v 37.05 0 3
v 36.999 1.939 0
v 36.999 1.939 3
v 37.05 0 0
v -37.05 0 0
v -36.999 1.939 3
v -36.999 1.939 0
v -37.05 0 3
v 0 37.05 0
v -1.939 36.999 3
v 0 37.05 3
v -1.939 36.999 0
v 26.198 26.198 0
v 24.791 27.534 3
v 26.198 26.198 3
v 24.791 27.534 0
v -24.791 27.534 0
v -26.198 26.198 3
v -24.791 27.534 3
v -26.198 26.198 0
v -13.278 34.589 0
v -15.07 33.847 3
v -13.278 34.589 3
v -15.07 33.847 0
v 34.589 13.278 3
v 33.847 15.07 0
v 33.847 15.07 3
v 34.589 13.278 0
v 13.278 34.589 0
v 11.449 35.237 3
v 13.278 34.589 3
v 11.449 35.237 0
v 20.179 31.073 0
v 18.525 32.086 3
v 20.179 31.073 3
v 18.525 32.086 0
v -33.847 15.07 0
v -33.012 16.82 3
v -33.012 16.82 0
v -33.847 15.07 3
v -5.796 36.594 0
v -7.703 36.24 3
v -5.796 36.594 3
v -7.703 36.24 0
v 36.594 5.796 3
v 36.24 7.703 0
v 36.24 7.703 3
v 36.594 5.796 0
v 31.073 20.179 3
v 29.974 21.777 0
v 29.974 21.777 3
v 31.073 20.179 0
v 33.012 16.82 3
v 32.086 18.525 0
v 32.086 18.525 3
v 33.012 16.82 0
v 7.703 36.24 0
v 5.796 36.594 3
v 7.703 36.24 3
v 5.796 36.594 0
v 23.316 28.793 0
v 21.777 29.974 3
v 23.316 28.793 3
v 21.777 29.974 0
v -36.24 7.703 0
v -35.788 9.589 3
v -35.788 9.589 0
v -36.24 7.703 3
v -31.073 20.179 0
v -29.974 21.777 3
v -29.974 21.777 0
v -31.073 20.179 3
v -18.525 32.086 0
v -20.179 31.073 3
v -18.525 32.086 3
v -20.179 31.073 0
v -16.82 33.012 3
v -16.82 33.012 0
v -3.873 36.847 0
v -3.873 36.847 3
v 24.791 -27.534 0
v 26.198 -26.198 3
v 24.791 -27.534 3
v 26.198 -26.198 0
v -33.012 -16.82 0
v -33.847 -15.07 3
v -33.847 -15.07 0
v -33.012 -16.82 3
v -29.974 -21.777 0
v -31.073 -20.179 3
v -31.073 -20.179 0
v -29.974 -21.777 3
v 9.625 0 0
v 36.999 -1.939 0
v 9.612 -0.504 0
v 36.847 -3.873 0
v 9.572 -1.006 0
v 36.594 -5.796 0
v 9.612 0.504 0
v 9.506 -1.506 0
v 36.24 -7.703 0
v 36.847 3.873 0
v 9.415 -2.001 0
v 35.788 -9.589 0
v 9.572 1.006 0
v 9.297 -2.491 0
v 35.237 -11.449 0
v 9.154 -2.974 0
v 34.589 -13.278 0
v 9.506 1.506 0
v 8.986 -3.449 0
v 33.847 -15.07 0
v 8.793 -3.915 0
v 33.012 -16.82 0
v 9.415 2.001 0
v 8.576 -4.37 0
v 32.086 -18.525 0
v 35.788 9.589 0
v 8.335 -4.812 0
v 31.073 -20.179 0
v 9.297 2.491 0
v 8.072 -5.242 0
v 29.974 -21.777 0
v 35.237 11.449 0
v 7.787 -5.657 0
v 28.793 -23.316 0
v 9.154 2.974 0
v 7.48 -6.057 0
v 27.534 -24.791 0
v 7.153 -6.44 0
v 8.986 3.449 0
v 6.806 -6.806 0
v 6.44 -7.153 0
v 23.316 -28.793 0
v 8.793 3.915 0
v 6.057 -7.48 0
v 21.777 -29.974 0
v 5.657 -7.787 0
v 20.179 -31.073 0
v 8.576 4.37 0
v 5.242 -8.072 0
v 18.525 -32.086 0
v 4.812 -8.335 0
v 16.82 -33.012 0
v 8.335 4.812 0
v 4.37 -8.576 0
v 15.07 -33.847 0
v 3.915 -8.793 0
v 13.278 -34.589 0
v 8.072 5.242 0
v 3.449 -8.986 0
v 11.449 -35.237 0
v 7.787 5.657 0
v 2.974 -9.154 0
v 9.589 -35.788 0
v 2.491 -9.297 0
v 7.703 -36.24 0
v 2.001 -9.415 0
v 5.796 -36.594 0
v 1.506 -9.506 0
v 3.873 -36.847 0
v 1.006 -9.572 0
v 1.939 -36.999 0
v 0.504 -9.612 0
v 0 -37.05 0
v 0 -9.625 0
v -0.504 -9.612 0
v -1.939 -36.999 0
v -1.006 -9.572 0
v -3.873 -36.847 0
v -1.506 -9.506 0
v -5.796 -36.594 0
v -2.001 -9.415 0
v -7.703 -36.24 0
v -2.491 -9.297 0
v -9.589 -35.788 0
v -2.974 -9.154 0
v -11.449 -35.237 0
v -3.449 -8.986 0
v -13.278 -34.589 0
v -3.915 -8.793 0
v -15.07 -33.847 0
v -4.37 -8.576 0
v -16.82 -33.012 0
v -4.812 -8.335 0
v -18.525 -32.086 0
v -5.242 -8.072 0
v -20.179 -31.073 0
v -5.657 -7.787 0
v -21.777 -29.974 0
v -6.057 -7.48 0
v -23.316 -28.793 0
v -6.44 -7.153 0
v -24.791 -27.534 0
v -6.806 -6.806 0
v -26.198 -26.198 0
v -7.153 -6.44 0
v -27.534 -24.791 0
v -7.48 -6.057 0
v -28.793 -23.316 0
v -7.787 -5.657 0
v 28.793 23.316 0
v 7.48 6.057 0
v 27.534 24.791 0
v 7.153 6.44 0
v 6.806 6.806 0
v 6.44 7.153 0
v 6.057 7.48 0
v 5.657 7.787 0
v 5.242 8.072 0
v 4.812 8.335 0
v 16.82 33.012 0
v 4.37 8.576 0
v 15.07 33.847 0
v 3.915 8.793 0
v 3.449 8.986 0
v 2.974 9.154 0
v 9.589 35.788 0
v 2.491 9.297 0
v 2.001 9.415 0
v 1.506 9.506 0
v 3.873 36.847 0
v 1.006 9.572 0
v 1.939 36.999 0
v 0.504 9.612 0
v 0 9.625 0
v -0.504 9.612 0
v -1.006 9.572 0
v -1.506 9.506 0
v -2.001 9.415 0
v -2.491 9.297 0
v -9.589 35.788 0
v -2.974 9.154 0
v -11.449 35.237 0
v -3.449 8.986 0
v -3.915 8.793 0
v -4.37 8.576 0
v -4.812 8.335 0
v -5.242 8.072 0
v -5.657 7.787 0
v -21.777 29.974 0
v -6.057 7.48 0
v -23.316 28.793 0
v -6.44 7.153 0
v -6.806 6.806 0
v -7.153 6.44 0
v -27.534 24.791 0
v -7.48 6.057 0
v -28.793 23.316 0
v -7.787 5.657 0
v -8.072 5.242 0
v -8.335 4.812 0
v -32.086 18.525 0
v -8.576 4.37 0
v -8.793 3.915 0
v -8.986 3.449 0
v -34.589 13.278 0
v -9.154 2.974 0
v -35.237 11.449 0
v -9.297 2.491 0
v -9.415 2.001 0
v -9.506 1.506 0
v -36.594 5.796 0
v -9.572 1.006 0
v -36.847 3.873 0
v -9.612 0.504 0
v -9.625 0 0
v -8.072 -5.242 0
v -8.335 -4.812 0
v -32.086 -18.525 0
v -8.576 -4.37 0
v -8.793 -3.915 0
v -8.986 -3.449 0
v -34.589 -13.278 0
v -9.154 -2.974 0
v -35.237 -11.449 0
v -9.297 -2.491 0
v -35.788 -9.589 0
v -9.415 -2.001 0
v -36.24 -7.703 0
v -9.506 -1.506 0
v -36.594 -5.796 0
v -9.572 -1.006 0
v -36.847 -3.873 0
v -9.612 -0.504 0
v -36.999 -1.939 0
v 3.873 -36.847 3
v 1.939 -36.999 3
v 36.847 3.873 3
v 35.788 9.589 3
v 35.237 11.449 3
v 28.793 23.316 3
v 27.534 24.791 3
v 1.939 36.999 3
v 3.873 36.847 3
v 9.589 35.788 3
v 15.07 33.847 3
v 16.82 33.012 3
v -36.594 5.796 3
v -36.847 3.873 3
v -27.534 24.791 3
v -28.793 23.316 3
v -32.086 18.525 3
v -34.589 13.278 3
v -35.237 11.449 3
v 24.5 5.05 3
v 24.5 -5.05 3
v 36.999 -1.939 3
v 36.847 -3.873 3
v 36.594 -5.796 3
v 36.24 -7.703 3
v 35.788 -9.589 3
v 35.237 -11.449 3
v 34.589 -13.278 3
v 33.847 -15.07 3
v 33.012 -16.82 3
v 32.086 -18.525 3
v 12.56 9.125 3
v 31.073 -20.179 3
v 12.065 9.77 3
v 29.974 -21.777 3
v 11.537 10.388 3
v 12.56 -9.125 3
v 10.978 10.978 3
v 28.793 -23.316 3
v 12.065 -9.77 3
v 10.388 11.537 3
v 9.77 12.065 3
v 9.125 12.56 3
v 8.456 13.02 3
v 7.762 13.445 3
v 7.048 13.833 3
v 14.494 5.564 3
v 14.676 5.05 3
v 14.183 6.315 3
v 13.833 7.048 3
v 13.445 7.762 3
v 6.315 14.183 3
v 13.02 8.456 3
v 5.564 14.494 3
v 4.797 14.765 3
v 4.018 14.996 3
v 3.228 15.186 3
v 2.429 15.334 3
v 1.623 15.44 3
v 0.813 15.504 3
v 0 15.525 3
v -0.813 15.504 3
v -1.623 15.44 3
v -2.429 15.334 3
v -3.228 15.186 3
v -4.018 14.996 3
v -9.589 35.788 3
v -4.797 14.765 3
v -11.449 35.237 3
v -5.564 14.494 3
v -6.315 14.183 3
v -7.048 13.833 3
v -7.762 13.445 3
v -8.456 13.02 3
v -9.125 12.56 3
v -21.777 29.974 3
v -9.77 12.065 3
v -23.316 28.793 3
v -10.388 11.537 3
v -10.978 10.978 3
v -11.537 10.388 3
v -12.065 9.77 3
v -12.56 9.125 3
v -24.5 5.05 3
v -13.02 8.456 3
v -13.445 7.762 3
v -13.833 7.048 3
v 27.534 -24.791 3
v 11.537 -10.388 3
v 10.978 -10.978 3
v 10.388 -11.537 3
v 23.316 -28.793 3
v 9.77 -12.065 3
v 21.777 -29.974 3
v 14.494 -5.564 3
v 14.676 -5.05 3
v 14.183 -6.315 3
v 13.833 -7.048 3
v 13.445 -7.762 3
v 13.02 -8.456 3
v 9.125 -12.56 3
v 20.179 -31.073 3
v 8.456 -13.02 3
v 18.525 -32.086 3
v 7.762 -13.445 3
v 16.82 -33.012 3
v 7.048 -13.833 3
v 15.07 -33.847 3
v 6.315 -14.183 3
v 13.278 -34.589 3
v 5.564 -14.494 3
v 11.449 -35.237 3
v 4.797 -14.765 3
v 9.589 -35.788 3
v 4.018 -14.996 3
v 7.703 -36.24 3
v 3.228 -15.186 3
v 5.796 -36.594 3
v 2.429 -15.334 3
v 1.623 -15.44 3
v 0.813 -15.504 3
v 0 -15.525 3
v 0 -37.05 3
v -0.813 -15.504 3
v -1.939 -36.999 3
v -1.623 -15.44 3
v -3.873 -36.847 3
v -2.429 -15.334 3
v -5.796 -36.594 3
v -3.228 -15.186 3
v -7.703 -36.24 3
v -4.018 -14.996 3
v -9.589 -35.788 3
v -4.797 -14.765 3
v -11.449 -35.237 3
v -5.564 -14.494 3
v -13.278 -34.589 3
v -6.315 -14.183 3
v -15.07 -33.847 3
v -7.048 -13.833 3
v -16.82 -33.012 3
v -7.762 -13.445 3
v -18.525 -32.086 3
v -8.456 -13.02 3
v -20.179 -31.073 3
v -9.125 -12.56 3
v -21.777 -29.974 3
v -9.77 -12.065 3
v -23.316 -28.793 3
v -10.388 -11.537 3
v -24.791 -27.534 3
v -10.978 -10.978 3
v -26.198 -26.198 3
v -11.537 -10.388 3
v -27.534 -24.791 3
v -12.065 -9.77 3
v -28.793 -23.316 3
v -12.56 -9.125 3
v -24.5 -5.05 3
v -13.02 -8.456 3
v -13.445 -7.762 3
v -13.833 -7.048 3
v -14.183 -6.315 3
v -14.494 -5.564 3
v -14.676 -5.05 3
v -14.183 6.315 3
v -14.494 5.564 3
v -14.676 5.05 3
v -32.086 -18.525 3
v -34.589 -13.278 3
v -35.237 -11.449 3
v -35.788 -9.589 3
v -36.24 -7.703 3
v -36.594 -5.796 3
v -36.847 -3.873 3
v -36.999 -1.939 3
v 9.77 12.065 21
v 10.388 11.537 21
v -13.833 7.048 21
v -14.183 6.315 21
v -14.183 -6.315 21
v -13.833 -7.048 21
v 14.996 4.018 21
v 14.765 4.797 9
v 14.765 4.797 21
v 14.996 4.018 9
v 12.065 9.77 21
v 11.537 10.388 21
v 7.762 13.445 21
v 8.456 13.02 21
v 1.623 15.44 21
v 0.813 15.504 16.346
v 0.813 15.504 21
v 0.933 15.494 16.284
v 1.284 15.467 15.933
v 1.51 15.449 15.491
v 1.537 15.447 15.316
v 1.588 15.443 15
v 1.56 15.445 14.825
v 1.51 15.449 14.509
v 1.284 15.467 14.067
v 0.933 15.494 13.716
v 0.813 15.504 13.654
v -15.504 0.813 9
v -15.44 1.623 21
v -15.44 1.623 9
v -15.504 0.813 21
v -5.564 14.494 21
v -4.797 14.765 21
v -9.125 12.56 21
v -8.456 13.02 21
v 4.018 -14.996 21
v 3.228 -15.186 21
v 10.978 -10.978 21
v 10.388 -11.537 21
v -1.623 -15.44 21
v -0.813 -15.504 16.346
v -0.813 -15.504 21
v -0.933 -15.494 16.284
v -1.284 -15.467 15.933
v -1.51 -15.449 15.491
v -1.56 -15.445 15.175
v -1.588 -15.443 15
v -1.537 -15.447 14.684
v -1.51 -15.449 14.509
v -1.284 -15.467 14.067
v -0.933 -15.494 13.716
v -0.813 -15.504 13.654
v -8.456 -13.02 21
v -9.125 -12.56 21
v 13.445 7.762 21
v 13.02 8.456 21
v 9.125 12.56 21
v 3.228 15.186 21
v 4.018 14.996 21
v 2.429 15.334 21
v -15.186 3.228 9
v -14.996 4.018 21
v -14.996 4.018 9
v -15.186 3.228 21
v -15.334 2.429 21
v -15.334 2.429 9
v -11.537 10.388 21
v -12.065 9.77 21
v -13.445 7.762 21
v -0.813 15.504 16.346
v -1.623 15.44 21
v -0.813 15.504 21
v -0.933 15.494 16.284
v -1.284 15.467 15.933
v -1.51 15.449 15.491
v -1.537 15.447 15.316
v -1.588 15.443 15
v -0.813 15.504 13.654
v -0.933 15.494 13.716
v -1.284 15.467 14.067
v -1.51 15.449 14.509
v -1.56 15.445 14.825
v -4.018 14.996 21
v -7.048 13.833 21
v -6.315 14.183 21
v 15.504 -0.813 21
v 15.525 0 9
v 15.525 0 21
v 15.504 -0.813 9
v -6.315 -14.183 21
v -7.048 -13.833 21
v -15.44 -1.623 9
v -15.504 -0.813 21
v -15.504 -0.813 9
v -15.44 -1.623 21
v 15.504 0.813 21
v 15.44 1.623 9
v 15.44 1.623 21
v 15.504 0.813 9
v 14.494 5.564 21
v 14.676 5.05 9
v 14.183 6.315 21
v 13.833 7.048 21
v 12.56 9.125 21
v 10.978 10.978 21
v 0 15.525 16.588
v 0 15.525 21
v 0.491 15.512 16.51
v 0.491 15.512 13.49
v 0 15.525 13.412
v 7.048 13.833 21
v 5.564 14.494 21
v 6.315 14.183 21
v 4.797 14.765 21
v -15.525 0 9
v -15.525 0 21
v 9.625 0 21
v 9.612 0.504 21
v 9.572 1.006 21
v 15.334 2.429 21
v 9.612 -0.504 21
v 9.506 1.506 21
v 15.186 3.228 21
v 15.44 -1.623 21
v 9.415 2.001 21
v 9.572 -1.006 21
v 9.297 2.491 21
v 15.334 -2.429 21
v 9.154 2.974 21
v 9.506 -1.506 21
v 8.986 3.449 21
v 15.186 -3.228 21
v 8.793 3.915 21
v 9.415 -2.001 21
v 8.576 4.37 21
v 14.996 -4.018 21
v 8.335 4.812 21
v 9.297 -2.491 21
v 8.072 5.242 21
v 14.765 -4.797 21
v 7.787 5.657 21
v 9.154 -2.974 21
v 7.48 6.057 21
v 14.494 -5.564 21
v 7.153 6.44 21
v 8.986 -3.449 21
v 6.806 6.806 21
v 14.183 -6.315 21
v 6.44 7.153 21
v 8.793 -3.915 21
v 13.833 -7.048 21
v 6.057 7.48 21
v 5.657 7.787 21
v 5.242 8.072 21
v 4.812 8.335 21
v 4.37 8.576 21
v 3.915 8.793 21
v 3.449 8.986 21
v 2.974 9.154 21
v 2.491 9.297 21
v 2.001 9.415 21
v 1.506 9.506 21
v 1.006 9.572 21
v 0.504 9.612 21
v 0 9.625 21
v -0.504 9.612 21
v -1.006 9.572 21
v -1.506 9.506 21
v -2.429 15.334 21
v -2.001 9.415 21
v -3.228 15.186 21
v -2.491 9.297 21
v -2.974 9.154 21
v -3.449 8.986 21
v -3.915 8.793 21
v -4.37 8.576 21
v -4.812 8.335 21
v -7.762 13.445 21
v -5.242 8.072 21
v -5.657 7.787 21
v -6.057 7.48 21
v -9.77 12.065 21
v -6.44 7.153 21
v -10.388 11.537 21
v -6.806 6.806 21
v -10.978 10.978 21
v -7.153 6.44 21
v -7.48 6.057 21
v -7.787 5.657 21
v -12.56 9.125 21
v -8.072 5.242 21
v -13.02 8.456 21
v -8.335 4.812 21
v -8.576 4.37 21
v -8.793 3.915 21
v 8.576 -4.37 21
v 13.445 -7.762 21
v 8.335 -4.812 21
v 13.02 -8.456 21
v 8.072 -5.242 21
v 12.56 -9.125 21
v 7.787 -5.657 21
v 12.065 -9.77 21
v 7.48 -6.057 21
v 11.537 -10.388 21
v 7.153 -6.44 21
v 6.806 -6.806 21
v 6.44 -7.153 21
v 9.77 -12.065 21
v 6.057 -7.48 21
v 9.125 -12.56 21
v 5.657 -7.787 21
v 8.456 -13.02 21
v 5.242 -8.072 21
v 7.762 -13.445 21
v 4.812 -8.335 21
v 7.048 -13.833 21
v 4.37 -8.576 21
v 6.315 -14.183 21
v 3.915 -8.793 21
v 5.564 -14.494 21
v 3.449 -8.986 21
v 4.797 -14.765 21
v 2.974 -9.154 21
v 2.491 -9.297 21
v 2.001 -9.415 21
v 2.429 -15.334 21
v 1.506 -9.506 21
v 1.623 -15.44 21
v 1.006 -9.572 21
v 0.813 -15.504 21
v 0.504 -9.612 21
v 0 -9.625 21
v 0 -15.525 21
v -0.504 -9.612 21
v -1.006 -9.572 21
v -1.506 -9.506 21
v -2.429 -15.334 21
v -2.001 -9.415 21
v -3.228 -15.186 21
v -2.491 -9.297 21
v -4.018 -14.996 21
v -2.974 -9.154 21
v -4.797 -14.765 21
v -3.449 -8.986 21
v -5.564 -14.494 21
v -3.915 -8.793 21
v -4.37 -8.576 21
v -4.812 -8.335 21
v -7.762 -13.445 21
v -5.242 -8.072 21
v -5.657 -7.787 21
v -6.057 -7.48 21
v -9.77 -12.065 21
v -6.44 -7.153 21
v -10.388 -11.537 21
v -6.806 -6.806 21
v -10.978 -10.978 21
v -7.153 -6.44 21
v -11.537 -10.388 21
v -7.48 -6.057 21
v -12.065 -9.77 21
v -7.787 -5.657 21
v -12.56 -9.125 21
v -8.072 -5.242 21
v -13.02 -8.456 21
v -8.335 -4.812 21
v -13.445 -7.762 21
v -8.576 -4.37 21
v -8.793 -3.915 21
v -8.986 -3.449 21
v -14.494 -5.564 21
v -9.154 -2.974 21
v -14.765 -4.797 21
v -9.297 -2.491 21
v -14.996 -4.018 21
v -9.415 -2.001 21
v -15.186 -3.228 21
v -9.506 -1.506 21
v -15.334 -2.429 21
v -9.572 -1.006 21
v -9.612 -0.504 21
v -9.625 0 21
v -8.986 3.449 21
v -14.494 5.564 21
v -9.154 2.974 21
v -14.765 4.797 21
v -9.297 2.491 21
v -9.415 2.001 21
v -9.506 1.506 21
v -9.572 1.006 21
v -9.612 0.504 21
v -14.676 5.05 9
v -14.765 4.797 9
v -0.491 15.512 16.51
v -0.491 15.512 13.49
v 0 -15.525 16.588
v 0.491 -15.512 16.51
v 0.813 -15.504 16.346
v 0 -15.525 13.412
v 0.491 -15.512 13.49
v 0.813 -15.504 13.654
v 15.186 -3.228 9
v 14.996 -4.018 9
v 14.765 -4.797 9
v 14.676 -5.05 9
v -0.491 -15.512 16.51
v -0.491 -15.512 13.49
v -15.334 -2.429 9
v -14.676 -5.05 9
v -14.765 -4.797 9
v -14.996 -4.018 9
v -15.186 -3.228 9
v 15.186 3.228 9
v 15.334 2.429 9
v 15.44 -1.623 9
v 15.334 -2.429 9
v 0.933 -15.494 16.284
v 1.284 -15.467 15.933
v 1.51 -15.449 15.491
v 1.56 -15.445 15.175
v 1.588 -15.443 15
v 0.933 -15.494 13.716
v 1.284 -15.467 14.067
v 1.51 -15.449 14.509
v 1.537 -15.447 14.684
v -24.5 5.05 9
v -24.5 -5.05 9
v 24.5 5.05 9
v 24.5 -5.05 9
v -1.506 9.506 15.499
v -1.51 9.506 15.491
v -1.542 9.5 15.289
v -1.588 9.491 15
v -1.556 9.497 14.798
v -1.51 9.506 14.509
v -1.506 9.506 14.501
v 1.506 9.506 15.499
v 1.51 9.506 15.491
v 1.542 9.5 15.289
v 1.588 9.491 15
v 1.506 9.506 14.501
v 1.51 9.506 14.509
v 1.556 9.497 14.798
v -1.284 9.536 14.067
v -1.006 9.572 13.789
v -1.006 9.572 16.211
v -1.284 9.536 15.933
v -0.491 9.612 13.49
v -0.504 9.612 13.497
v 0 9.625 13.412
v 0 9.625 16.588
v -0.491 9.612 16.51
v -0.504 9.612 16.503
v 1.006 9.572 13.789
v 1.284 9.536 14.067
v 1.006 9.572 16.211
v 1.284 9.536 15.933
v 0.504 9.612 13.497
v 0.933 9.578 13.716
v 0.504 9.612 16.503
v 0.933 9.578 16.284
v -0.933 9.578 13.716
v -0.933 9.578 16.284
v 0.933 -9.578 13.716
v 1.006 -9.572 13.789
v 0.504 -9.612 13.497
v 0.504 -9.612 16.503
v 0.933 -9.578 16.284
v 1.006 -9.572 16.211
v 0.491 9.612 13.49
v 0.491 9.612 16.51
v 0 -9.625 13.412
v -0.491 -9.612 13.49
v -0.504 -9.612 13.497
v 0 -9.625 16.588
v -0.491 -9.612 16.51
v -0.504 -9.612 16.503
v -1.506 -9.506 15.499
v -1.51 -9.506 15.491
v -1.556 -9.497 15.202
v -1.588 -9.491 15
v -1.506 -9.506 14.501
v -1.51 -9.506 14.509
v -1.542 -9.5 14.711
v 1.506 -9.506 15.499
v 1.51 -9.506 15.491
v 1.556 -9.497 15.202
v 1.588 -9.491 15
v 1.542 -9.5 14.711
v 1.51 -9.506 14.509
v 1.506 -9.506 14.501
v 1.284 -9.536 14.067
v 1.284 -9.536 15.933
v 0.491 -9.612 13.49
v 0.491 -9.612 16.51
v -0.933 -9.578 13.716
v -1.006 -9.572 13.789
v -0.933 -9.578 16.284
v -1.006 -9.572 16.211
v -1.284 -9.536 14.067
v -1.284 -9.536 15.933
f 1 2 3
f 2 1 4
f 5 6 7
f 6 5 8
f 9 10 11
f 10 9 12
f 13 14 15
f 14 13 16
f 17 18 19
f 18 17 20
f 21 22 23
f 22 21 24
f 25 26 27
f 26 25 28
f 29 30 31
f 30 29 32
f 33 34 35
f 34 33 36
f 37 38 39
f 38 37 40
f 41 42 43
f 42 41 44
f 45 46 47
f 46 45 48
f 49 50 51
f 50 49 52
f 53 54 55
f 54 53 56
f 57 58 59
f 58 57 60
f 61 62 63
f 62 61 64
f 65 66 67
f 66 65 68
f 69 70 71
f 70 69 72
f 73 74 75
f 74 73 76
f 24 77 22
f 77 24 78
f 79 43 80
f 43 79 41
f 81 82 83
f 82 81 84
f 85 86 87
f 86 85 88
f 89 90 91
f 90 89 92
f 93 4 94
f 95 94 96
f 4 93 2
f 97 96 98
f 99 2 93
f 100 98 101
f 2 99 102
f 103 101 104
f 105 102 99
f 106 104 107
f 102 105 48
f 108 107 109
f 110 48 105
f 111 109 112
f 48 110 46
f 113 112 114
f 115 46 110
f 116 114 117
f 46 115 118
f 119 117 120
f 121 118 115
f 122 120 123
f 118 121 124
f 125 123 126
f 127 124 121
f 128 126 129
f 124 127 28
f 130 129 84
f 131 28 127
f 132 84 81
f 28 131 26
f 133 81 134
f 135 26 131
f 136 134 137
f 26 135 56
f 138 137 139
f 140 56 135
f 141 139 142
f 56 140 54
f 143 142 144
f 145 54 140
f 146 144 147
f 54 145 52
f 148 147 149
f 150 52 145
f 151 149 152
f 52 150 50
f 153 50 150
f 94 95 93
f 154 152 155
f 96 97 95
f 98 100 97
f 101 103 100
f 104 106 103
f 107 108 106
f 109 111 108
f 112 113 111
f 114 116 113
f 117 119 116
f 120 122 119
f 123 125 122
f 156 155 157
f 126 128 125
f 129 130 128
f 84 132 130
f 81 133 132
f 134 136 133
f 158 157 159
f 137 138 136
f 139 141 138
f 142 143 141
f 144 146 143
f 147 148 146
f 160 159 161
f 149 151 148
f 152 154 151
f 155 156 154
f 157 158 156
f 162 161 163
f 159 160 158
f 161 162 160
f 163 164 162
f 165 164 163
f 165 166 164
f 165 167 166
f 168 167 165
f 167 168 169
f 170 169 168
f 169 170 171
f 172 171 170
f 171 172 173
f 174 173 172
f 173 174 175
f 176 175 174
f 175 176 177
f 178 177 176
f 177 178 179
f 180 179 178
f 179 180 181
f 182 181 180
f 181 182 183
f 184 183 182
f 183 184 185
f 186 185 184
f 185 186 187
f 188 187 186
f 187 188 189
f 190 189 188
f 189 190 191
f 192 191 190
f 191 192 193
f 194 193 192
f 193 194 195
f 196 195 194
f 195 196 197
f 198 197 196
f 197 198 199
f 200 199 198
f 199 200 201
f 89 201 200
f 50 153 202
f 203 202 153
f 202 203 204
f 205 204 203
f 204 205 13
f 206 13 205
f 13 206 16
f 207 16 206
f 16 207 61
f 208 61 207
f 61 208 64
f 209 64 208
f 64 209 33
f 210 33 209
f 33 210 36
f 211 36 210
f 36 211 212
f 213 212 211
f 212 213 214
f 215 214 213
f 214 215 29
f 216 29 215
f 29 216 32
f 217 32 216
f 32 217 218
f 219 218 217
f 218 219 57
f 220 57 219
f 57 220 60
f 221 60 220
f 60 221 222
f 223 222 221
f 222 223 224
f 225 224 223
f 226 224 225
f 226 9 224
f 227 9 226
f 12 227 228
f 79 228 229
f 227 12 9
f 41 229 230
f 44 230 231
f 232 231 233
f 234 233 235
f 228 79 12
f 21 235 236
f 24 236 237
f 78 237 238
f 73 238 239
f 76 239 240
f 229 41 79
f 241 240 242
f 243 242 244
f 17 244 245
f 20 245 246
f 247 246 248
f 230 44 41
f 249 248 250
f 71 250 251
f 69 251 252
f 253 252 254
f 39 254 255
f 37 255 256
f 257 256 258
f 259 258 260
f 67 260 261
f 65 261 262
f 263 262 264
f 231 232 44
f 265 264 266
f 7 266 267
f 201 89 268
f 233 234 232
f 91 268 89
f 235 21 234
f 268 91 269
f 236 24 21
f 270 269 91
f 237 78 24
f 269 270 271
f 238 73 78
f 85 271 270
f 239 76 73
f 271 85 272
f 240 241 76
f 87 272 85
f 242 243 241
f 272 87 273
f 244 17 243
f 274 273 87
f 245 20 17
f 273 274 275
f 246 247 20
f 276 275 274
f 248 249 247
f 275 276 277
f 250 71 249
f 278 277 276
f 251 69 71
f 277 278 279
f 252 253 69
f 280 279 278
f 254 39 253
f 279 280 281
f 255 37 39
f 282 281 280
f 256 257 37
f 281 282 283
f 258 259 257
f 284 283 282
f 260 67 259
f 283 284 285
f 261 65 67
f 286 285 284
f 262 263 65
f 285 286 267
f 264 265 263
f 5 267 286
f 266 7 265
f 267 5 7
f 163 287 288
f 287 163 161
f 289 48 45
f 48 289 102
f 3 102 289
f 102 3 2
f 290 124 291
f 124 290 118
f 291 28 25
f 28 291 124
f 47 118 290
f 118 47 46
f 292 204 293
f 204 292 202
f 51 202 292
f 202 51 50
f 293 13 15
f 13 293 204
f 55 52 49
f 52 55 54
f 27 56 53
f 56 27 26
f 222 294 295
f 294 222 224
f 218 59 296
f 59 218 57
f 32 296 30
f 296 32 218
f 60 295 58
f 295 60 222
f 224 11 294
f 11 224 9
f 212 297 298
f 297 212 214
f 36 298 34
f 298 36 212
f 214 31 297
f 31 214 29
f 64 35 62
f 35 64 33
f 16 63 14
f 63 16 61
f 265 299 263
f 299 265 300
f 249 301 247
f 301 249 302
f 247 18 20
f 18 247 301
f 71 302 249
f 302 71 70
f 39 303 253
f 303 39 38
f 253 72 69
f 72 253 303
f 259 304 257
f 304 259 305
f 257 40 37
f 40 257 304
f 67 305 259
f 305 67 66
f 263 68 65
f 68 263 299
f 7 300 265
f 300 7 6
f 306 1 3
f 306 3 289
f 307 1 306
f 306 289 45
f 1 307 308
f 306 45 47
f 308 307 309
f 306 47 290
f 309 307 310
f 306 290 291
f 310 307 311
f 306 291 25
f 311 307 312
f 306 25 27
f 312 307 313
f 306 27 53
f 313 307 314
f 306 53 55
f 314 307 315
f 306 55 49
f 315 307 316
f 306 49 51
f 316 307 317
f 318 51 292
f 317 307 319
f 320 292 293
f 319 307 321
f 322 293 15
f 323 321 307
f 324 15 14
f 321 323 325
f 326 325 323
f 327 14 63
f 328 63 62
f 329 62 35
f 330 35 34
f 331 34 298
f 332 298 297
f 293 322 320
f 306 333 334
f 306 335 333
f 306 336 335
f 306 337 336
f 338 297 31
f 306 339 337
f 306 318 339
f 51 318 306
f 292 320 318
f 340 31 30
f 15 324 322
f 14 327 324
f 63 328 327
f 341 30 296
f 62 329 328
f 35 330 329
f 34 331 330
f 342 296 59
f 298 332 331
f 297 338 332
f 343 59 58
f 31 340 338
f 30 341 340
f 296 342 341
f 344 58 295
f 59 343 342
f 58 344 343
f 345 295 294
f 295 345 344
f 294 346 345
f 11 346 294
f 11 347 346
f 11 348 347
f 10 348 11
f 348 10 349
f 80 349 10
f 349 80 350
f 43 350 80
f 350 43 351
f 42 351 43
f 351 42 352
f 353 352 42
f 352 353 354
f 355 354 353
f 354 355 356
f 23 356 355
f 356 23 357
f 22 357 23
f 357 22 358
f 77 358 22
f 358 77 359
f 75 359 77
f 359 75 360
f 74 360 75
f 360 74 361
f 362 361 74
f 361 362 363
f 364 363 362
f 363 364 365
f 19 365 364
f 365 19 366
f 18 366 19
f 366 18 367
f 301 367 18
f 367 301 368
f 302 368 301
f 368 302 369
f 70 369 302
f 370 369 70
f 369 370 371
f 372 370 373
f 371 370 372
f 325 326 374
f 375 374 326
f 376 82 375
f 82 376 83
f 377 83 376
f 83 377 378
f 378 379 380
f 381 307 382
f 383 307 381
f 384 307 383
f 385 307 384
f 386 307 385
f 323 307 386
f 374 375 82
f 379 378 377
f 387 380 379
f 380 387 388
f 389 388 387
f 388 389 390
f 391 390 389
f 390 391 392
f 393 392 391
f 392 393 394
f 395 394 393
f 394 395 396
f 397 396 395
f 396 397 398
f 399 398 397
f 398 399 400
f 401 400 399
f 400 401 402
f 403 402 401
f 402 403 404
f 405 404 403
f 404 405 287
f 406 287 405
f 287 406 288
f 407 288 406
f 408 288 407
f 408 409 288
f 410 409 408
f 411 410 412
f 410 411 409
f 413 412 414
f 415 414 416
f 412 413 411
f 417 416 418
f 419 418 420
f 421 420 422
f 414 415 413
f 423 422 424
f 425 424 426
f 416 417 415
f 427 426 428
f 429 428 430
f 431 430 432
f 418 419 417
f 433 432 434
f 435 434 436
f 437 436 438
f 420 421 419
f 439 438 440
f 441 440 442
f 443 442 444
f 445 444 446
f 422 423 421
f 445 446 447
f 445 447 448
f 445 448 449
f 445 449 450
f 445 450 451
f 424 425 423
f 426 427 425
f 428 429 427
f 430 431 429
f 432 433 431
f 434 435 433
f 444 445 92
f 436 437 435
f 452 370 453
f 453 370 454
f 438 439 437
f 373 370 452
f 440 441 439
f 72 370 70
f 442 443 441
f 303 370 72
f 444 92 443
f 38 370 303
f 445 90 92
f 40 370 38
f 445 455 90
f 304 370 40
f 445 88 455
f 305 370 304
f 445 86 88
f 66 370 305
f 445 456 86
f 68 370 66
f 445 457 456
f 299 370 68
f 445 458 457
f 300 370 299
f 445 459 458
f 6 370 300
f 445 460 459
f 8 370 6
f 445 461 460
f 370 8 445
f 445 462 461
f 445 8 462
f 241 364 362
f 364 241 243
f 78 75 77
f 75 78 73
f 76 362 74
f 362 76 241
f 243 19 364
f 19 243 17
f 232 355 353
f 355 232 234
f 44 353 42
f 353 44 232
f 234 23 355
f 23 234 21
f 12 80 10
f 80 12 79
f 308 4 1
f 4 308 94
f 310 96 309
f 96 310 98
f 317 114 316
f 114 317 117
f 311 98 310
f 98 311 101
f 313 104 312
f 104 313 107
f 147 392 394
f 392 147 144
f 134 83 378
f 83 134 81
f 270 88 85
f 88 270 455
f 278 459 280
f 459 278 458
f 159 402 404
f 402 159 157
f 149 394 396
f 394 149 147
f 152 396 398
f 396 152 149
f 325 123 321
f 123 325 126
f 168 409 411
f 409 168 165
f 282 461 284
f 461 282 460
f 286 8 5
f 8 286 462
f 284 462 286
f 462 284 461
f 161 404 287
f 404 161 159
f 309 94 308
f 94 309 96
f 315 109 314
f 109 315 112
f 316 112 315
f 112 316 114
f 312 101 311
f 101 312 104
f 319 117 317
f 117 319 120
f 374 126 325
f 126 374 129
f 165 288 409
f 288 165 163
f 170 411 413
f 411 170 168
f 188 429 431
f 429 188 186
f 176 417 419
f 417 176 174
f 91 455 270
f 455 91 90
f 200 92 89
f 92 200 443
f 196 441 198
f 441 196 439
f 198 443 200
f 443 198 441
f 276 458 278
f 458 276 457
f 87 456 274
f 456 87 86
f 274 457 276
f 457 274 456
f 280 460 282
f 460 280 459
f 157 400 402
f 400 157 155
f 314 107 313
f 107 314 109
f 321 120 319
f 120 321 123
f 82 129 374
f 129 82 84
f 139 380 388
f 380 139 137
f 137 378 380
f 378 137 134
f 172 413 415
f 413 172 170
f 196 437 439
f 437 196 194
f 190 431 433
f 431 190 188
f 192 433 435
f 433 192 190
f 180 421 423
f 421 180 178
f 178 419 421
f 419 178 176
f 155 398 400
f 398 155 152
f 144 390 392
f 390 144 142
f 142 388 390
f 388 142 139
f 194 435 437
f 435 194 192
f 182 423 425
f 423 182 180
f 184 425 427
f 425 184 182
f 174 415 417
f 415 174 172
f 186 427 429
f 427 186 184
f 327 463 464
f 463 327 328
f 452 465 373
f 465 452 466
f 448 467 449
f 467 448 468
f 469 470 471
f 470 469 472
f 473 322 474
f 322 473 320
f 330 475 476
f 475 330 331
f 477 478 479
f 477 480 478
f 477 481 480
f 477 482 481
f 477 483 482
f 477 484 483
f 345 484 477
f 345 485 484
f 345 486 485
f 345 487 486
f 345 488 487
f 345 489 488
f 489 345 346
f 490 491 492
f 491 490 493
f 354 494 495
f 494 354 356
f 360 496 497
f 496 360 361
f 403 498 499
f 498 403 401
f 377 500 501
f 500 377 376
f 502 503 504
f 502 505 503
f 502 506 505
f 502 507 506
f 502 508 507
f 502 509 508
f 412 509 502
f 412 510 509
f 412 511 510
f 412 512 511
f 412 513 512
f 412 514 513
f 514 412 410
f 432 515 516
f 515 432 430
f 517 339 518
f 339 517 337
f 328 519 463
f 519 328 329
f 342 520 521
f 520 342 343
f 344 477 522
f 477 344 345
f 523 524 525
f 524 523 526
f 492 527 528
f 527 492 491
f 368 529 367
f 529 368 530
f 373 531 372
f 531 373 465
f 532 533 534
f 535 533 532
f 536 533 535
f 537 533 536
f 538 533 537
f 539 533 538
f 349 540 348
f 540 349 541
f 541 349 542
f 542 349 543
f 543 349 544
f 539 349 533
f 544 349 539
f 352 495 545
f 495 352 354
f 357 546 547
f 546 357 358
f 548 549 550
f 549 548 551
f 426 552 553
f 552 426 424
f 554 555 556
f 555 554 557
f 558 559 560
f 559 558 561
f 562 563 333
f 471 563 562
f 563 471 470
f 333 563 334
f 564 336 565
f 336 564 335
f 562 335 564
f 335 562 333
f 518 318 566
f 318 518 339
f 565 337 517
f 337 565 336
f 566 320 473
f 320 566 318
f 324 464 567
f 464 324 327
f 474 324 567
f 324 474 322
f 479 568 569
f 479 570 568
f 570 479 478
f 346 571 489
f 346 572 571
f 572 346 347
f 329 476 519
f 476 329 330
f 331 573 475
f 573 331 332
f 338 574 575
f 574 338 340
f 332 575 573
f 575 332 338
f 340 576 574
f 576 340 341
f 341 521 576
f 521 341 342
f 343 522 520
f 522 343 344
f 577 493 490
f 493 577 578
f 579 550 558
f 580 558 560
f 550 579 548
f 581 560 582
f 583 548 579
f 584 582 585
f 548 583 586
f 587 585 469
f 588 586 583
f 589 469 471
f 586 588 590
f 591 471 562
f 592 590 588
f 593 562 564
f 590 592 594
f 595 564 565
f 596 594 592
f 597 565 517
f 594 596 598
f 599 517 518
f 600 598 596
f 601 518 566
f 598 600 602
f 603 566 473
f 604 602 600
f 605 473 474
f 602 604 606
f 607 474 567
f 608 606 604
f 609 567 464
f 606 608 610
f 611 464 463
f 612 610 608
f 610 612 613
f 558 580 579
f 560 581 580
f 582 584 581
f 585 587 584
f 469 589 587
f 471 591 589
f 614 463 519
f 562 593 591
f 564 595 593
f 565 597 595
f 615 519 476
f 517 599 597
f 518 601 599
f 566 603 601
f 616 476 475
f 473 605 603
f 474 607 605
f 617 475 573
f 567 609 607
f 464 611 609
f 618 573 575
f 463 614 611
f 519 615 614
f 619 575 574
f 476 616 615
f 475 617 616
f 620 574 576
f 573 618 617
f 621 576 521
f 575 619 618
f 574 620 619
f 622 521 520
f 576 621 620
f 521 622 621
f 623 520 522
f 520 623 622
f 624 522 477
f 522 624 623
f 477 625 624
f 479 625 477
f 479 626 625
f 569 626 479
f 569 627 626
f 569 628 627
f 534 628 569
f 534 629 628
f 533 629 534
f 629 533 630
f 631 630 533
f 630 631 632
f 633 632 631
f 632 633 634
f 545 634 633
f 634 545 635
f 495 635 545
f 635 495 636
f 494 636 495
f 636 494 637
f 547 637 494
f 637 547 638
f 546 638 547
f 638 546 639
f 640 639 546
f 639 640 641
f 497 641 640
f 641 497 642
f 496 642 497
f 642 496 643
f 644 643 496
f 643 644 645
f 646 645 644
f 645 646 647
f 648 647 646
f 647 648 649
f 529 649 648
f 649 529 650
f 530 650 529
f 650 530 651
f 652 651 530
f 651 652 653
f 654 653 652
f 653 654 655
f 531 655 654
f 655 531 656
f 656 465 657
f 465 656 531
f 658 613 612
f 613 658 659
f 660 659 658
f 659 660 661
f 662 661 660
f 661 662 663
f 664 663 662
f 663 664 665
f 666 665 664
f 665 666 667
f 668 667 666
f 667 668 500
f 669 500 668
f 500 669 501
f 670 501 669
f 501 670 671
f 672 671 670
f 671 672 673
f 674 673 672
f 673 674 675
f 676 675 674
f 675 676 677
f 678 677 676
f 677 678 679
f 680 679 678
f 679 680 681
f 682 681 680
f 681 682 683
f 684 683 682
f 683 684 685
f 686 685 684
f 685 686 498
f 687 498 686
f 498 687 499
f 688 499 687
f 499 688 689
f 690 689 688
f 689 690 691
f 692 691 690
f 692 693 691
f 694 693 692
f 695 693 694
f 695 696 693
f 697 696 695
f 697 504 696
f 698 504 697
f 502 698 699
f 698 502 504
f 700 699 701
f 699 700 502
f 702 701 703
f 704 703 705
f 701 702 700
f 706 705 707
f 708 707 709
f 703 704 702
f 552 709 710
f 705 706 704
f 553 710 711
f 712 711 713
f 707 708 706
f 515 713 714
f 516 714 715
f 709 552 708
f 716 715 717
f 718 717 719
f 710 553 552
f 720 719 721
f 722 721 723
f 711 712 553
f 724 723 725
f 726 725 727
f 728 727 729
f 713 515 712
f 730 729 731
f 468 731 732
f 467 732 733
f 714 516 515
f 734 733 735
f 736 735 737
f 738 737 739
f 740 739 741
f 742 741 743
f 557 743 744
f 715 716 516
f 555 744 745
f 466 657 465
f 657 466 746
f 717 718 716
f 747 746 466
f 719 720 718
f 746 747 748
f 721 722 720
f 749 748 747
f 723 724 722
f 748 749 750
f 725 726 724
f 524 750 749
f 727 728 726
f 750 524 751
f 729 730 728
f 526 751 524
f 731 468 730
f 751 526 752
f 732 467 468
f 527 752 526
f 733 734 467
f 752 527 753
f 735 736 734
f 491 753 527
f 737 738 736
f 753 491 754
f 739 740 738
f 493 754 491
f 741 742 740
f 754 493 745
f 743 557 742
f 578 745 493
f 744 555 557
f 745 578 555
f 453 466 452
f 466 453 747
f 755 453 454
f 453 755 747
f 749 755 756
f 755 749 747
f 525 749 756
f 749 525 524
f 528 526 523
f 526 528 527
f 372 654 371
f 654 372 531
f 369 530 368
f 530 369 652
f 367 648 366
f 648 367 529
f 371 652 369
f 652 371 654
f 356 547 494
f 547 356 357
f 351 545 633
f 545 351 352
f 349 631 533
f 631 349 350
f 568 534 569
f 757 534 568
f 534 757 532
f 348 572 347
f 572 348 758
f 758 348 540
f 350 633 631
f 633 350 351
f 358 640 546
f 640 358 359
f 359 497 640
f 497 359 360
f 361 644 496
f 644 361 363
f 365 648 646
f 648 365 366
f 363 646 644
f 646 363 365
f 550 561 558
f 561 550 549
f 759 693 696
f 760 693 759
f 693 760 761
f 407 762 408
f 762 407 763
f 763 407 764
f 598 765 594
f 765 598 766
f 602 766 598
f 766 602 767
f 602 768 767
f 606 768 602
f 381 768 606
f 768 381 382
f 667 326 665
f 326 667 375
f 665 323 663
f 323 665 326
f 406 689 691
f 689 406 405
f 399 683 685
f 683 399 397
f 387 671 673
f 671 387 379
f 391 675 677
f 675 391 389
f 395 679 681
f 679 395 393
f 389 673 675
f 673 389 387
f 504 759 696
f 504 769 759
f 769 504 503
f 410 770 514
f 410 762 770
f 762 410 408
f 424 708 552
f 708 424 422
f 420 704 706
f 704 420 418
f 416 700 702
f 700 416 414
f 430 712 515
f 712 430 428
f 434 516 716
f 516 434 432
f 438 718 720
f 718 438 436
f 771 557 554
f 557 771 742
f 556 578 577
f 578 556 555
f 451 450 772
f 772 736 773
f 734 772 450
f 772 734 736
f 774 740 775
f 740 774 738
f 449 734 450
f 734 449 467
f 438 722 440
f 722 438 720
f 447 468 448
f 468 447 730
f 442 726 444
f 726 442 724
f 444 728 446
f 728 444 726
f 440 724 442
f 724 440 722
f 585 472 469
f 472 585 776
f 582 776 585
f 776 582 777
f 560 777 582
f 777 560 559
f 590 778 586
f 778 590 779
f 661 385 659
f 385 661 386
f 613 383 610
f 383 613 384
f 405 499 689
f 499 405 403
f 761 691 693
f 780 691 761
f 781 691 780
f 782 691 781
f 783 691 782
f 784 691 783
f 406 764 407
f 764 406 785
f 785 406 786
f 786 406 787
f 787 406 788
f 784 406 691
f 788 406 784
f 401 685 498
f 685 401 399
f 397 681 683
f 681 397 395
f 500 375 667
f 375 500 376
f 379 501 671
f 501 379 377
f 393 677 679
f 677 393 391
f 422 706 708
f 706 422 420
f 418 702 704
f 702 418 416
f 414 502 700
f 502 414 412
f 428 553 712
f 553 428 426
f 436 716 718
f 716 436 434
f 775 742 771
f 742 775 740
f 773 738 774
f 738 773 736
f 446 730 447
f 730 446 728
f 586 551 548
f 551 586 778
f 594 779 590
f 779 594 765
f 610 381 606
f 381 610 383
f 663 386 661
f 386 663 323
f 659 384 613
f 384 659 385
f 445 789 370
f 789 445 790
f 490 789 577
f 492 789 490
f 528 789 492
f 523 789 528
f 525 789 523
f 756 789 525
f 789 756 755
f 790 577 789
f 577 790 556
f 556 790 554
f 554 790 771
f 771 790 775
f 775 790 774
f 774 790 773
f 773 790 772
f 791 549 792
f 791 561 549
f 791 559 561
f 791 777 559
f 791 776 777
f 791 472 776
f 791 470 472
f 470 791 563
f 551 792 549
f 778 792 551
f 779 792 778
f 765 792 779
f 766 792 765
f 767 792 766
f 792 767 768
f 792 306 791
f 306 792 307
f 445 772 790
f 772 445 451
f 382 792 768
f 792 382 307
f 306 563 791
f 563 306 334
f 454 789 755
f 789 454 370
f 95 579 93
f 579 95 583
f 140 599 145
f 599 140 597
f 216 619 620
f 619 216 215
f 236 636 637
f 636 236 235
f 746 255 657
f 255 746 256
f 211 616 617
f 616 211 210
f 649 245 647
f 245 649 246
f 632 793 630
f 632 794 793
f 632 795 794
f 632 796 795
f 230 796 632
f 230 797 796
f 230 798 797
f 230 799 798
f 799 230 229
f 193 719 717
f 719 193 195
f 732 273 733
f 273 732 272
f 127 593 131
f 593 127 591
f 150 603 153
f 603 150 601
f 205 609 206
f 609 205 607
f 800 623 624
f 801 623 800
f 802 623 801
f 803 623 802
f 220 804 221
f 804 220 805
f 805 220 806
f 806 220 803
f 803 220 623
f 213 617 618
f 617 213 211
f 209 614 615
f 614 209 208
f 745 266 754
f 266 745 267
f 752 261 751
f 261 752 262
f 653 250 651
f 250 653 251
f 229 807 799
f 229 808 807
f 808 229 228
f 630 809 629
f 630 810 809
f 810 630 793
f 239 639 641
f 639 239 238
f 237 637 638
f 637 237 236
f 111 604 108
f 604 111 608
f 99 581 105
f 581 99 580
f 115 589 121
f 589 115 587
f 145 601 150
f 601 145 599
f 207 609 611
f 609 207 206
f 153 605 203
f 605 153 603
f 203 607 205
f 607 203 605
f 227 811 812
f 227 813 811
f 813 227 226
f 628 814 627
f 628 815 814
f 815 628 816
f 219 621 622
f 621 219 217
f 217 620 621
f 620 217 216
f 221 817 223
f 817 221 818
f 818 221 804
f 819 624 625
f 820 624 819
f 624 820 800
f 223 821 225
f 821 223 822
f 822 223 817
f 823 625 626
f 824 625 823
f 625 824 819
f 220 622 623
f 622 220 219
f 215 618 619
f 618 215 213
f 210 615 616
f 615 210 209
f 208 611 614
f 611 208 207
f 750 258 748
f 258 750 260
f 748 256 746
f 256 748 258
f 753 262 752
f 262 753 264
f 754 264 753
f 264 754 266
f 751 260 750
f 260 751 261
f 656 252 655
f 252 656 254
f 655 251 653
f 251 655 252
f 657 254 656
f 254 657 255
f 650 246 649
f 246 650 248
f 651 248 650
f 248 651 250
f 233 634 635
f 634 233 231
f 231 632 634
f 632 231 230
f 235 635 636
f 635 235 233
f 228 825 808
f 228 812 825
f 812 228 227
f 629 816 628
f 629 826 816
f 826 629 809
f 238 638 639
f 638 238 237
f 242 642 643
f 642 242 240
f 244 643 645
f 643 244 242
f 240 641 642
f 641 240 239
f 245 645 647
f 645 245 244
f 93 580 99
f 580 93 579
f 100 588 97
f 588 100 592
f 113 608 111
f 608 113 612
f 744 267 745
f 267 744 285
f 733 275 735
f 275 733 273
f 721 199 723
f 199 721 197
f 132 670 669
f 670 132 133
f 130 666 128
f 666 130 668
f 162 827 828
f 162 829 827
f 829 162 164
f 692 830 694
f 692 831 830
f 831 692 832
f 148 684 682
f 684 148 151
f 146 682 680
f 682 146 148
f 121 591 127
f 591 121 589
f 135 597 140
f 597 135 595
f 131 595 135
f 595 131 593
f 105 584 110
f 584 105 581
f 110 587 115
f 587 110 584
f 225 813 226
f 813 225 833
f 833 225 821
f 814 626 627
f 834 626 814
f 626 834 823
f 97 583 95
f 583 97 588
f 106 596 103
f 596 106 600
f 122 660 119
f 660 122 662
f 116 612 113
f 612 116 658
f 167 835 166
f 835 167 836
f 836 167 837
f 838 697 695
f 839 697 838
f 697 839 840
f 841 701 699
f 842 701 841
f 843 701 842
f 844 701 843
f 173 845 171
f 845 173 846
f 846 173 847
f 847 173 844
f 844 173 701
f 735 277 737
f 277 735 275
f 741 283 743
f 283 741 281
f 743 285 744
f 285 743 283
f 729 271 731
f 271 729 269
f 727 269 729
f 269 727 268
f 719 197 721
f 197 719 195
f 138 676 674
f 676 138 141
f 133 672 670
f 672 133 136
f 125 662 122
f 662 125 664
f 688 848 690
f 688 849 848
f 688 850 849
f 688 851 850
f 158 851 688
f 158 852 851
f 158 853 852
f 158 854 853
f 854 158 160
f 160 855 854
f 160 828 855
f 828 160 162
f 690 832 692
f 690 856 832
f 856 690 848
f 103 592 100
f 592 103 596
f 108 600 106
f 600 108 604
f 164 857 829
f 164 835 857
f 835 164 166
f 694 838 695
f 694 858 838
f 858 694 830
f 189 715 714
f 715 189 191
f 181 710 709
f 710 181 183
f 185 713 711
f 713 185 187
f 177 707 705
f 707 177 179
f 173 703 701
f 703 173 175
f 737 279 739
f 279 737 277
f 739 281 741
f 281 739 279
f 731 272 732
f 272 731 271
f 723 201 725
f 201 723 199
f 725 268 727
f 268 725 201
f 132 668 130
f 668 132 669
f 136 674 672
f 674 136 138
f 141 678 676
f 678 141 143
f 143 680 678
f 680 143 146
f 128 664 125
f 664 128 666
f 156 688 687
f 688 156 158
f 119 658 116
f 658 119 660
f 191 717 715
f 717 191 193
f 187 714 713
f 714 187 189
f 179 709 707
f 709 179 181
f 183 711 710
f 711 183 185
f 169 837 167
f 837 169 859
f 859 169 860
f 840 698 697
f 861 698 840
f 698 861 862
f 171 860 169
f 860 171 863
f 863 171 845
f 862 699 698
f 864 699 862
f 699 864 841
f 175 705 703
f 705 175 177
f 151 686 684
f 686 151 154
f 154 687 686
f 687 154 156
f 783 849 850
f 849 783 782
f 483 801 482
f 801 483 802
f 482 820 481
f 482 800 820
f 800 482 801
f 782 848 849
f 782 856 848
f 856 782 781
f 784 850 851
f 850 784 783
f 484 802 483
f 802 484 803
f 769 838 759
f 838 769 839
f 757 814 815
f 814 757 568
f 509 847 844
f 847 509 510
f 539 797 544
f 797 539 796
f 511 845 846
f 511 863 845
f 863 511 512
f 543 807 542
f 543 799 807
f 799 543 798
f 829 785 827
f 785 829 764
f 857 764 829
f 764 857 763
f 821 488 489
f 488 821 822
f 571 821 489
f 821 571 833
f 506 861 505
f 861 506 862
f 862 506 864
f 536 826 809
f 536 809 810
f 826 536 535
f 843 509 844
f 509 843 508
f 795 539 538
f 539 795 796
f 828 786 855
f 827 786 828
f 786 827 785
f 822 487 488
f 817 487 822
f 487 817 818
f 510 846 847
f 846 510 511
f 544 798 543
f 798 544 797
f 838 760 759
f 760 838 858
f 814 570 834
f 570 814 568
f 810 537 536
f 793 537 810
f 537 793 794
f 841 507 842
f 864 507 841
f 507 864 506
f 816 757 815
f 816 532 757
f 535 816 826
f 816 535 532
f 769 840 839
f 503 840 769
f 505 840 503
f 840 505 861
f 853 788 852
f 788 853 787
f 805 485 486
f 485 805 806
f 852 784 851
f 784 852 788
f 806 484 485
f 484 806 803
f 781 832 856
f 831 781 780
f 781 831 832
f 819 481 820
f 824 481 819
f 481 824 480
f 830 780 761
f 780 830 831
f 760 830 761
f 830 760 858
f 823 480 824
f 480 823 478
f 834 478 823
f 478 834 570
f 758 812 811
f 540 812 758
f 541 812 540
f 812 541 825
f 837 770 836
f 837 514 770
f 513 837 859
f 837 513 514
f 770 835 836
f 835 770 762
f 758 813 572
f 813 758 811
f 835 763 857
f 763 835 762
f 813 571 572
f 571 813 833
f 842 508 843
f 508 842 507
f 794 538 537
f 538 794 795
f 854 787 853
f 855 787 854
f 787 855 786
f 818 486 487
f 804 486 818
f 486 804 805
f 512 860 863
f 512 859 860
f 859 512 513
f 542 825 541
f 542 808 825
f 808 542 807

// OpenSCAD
//This is an openscad part used as a flange to connect a zoetrope to a shaft


//render
lower_flange();

//===========Parameters===========

num_frames = 12; //total number of frames to make cutouts for
panel_width = 1.625*25.4;  //size of each panel

//===========Geometry============
clearance = 0.1; //mm - amount to oversize holes so that parts will assemble

d_shaft = .75*25.4; //0.75" shaft diameter in mm
d_mag = 8.1; //  diamete of magnets in mm
h_mag = 2.1; //mm the heigh of the magnets
d_pin = 0.125*25.4; // diameter of pins used to hold shaft to flange
d_flange = 7*25.4; // outer diameter of the flange 
t_flange = 6; //thickness of the flang in mm
t_hub = 6; //thickness of the material around the hub
h_hub = 15; //height of the hub from the surface of the flange
edge_space = 5; //mm from the edge of the flange to the closest part of the frame
d_base = d_shaft+2*t_hub+6;
t_base = 3; //mm thickness of base web
t_panel = 3;//mm how thick each panel is
panel_cut = 3; //mm how deep of a recess to cut for each panel


fudge = 0.01; //mm - use this value to make sure surfaces aren't coincident
//===========Modules=============
module lower_flange(){
    difference(){
        //Make the core of the flange
        union(){
            //This makes the base of the flange
            //cylinder(r = d_flange/2, h= t_flange, $fn = 360);
            //This makes the hub
            //translate([0,0,t_flange-fudge])
            cylinder(r=d_base,h=t_base,$fn = 120);
            cylinder(r = d_shaft/2+t_hub, h = h_hub+t_flange, $fn = 120);
            //add in a block to mate the disks
            translate([-49/2,-10.1/2,0])
            cube([49,10.1,6+t_base]);
        }
        //Then subtract things from it
        
        //Subtract the hole for the shaft
        translate([0,0,-fudge])
        cylinder(r = d_shaft/2+clearance,h = t_flange+h_hub+2*fudge,$fn = 120);
        
        //cut a pin to register the flange to the shaft
               
        translate([0,0,t_flange+h_hub*.6])
        rotate([90,0,0]) 
        cylinder(r=d_pin/2,h=5*d_shaft+2*t_hub+2*fudge,$fn=20,center=true);
        //subtract the holes for the frames
        for (i=[0:num_frames-1]){
            cord_calc(i);
            mag_holes(i);
            
            
        }
        
 
    }
    
  
    
    
    
    
}
module cord_calc(i){
    theta = 2*3.1415/num_frames;
    r_panel = (d_flange/2-edge_space)*cos(theta/2)-t_panel;
 
    rotate([0,0,i*theta*180/3.1415])
    translate([r_panel,-panel_width/2,t_flange+fudge-panel_cut])
    cube([t_panel+clearance,panel_width+clearance,panel_cut]);
  
}

module mag_holes(i){
    theta = 2*3.1415/num_frames;
    
    rotate([0,0,i*theta*180/3.1415])
    translate([d_flange/2-d_mag/2-edge_space,0,-fudge])
    cylinder(r=d_mag/2+clearance, h=h_mag, $fn = 20);
    
}
